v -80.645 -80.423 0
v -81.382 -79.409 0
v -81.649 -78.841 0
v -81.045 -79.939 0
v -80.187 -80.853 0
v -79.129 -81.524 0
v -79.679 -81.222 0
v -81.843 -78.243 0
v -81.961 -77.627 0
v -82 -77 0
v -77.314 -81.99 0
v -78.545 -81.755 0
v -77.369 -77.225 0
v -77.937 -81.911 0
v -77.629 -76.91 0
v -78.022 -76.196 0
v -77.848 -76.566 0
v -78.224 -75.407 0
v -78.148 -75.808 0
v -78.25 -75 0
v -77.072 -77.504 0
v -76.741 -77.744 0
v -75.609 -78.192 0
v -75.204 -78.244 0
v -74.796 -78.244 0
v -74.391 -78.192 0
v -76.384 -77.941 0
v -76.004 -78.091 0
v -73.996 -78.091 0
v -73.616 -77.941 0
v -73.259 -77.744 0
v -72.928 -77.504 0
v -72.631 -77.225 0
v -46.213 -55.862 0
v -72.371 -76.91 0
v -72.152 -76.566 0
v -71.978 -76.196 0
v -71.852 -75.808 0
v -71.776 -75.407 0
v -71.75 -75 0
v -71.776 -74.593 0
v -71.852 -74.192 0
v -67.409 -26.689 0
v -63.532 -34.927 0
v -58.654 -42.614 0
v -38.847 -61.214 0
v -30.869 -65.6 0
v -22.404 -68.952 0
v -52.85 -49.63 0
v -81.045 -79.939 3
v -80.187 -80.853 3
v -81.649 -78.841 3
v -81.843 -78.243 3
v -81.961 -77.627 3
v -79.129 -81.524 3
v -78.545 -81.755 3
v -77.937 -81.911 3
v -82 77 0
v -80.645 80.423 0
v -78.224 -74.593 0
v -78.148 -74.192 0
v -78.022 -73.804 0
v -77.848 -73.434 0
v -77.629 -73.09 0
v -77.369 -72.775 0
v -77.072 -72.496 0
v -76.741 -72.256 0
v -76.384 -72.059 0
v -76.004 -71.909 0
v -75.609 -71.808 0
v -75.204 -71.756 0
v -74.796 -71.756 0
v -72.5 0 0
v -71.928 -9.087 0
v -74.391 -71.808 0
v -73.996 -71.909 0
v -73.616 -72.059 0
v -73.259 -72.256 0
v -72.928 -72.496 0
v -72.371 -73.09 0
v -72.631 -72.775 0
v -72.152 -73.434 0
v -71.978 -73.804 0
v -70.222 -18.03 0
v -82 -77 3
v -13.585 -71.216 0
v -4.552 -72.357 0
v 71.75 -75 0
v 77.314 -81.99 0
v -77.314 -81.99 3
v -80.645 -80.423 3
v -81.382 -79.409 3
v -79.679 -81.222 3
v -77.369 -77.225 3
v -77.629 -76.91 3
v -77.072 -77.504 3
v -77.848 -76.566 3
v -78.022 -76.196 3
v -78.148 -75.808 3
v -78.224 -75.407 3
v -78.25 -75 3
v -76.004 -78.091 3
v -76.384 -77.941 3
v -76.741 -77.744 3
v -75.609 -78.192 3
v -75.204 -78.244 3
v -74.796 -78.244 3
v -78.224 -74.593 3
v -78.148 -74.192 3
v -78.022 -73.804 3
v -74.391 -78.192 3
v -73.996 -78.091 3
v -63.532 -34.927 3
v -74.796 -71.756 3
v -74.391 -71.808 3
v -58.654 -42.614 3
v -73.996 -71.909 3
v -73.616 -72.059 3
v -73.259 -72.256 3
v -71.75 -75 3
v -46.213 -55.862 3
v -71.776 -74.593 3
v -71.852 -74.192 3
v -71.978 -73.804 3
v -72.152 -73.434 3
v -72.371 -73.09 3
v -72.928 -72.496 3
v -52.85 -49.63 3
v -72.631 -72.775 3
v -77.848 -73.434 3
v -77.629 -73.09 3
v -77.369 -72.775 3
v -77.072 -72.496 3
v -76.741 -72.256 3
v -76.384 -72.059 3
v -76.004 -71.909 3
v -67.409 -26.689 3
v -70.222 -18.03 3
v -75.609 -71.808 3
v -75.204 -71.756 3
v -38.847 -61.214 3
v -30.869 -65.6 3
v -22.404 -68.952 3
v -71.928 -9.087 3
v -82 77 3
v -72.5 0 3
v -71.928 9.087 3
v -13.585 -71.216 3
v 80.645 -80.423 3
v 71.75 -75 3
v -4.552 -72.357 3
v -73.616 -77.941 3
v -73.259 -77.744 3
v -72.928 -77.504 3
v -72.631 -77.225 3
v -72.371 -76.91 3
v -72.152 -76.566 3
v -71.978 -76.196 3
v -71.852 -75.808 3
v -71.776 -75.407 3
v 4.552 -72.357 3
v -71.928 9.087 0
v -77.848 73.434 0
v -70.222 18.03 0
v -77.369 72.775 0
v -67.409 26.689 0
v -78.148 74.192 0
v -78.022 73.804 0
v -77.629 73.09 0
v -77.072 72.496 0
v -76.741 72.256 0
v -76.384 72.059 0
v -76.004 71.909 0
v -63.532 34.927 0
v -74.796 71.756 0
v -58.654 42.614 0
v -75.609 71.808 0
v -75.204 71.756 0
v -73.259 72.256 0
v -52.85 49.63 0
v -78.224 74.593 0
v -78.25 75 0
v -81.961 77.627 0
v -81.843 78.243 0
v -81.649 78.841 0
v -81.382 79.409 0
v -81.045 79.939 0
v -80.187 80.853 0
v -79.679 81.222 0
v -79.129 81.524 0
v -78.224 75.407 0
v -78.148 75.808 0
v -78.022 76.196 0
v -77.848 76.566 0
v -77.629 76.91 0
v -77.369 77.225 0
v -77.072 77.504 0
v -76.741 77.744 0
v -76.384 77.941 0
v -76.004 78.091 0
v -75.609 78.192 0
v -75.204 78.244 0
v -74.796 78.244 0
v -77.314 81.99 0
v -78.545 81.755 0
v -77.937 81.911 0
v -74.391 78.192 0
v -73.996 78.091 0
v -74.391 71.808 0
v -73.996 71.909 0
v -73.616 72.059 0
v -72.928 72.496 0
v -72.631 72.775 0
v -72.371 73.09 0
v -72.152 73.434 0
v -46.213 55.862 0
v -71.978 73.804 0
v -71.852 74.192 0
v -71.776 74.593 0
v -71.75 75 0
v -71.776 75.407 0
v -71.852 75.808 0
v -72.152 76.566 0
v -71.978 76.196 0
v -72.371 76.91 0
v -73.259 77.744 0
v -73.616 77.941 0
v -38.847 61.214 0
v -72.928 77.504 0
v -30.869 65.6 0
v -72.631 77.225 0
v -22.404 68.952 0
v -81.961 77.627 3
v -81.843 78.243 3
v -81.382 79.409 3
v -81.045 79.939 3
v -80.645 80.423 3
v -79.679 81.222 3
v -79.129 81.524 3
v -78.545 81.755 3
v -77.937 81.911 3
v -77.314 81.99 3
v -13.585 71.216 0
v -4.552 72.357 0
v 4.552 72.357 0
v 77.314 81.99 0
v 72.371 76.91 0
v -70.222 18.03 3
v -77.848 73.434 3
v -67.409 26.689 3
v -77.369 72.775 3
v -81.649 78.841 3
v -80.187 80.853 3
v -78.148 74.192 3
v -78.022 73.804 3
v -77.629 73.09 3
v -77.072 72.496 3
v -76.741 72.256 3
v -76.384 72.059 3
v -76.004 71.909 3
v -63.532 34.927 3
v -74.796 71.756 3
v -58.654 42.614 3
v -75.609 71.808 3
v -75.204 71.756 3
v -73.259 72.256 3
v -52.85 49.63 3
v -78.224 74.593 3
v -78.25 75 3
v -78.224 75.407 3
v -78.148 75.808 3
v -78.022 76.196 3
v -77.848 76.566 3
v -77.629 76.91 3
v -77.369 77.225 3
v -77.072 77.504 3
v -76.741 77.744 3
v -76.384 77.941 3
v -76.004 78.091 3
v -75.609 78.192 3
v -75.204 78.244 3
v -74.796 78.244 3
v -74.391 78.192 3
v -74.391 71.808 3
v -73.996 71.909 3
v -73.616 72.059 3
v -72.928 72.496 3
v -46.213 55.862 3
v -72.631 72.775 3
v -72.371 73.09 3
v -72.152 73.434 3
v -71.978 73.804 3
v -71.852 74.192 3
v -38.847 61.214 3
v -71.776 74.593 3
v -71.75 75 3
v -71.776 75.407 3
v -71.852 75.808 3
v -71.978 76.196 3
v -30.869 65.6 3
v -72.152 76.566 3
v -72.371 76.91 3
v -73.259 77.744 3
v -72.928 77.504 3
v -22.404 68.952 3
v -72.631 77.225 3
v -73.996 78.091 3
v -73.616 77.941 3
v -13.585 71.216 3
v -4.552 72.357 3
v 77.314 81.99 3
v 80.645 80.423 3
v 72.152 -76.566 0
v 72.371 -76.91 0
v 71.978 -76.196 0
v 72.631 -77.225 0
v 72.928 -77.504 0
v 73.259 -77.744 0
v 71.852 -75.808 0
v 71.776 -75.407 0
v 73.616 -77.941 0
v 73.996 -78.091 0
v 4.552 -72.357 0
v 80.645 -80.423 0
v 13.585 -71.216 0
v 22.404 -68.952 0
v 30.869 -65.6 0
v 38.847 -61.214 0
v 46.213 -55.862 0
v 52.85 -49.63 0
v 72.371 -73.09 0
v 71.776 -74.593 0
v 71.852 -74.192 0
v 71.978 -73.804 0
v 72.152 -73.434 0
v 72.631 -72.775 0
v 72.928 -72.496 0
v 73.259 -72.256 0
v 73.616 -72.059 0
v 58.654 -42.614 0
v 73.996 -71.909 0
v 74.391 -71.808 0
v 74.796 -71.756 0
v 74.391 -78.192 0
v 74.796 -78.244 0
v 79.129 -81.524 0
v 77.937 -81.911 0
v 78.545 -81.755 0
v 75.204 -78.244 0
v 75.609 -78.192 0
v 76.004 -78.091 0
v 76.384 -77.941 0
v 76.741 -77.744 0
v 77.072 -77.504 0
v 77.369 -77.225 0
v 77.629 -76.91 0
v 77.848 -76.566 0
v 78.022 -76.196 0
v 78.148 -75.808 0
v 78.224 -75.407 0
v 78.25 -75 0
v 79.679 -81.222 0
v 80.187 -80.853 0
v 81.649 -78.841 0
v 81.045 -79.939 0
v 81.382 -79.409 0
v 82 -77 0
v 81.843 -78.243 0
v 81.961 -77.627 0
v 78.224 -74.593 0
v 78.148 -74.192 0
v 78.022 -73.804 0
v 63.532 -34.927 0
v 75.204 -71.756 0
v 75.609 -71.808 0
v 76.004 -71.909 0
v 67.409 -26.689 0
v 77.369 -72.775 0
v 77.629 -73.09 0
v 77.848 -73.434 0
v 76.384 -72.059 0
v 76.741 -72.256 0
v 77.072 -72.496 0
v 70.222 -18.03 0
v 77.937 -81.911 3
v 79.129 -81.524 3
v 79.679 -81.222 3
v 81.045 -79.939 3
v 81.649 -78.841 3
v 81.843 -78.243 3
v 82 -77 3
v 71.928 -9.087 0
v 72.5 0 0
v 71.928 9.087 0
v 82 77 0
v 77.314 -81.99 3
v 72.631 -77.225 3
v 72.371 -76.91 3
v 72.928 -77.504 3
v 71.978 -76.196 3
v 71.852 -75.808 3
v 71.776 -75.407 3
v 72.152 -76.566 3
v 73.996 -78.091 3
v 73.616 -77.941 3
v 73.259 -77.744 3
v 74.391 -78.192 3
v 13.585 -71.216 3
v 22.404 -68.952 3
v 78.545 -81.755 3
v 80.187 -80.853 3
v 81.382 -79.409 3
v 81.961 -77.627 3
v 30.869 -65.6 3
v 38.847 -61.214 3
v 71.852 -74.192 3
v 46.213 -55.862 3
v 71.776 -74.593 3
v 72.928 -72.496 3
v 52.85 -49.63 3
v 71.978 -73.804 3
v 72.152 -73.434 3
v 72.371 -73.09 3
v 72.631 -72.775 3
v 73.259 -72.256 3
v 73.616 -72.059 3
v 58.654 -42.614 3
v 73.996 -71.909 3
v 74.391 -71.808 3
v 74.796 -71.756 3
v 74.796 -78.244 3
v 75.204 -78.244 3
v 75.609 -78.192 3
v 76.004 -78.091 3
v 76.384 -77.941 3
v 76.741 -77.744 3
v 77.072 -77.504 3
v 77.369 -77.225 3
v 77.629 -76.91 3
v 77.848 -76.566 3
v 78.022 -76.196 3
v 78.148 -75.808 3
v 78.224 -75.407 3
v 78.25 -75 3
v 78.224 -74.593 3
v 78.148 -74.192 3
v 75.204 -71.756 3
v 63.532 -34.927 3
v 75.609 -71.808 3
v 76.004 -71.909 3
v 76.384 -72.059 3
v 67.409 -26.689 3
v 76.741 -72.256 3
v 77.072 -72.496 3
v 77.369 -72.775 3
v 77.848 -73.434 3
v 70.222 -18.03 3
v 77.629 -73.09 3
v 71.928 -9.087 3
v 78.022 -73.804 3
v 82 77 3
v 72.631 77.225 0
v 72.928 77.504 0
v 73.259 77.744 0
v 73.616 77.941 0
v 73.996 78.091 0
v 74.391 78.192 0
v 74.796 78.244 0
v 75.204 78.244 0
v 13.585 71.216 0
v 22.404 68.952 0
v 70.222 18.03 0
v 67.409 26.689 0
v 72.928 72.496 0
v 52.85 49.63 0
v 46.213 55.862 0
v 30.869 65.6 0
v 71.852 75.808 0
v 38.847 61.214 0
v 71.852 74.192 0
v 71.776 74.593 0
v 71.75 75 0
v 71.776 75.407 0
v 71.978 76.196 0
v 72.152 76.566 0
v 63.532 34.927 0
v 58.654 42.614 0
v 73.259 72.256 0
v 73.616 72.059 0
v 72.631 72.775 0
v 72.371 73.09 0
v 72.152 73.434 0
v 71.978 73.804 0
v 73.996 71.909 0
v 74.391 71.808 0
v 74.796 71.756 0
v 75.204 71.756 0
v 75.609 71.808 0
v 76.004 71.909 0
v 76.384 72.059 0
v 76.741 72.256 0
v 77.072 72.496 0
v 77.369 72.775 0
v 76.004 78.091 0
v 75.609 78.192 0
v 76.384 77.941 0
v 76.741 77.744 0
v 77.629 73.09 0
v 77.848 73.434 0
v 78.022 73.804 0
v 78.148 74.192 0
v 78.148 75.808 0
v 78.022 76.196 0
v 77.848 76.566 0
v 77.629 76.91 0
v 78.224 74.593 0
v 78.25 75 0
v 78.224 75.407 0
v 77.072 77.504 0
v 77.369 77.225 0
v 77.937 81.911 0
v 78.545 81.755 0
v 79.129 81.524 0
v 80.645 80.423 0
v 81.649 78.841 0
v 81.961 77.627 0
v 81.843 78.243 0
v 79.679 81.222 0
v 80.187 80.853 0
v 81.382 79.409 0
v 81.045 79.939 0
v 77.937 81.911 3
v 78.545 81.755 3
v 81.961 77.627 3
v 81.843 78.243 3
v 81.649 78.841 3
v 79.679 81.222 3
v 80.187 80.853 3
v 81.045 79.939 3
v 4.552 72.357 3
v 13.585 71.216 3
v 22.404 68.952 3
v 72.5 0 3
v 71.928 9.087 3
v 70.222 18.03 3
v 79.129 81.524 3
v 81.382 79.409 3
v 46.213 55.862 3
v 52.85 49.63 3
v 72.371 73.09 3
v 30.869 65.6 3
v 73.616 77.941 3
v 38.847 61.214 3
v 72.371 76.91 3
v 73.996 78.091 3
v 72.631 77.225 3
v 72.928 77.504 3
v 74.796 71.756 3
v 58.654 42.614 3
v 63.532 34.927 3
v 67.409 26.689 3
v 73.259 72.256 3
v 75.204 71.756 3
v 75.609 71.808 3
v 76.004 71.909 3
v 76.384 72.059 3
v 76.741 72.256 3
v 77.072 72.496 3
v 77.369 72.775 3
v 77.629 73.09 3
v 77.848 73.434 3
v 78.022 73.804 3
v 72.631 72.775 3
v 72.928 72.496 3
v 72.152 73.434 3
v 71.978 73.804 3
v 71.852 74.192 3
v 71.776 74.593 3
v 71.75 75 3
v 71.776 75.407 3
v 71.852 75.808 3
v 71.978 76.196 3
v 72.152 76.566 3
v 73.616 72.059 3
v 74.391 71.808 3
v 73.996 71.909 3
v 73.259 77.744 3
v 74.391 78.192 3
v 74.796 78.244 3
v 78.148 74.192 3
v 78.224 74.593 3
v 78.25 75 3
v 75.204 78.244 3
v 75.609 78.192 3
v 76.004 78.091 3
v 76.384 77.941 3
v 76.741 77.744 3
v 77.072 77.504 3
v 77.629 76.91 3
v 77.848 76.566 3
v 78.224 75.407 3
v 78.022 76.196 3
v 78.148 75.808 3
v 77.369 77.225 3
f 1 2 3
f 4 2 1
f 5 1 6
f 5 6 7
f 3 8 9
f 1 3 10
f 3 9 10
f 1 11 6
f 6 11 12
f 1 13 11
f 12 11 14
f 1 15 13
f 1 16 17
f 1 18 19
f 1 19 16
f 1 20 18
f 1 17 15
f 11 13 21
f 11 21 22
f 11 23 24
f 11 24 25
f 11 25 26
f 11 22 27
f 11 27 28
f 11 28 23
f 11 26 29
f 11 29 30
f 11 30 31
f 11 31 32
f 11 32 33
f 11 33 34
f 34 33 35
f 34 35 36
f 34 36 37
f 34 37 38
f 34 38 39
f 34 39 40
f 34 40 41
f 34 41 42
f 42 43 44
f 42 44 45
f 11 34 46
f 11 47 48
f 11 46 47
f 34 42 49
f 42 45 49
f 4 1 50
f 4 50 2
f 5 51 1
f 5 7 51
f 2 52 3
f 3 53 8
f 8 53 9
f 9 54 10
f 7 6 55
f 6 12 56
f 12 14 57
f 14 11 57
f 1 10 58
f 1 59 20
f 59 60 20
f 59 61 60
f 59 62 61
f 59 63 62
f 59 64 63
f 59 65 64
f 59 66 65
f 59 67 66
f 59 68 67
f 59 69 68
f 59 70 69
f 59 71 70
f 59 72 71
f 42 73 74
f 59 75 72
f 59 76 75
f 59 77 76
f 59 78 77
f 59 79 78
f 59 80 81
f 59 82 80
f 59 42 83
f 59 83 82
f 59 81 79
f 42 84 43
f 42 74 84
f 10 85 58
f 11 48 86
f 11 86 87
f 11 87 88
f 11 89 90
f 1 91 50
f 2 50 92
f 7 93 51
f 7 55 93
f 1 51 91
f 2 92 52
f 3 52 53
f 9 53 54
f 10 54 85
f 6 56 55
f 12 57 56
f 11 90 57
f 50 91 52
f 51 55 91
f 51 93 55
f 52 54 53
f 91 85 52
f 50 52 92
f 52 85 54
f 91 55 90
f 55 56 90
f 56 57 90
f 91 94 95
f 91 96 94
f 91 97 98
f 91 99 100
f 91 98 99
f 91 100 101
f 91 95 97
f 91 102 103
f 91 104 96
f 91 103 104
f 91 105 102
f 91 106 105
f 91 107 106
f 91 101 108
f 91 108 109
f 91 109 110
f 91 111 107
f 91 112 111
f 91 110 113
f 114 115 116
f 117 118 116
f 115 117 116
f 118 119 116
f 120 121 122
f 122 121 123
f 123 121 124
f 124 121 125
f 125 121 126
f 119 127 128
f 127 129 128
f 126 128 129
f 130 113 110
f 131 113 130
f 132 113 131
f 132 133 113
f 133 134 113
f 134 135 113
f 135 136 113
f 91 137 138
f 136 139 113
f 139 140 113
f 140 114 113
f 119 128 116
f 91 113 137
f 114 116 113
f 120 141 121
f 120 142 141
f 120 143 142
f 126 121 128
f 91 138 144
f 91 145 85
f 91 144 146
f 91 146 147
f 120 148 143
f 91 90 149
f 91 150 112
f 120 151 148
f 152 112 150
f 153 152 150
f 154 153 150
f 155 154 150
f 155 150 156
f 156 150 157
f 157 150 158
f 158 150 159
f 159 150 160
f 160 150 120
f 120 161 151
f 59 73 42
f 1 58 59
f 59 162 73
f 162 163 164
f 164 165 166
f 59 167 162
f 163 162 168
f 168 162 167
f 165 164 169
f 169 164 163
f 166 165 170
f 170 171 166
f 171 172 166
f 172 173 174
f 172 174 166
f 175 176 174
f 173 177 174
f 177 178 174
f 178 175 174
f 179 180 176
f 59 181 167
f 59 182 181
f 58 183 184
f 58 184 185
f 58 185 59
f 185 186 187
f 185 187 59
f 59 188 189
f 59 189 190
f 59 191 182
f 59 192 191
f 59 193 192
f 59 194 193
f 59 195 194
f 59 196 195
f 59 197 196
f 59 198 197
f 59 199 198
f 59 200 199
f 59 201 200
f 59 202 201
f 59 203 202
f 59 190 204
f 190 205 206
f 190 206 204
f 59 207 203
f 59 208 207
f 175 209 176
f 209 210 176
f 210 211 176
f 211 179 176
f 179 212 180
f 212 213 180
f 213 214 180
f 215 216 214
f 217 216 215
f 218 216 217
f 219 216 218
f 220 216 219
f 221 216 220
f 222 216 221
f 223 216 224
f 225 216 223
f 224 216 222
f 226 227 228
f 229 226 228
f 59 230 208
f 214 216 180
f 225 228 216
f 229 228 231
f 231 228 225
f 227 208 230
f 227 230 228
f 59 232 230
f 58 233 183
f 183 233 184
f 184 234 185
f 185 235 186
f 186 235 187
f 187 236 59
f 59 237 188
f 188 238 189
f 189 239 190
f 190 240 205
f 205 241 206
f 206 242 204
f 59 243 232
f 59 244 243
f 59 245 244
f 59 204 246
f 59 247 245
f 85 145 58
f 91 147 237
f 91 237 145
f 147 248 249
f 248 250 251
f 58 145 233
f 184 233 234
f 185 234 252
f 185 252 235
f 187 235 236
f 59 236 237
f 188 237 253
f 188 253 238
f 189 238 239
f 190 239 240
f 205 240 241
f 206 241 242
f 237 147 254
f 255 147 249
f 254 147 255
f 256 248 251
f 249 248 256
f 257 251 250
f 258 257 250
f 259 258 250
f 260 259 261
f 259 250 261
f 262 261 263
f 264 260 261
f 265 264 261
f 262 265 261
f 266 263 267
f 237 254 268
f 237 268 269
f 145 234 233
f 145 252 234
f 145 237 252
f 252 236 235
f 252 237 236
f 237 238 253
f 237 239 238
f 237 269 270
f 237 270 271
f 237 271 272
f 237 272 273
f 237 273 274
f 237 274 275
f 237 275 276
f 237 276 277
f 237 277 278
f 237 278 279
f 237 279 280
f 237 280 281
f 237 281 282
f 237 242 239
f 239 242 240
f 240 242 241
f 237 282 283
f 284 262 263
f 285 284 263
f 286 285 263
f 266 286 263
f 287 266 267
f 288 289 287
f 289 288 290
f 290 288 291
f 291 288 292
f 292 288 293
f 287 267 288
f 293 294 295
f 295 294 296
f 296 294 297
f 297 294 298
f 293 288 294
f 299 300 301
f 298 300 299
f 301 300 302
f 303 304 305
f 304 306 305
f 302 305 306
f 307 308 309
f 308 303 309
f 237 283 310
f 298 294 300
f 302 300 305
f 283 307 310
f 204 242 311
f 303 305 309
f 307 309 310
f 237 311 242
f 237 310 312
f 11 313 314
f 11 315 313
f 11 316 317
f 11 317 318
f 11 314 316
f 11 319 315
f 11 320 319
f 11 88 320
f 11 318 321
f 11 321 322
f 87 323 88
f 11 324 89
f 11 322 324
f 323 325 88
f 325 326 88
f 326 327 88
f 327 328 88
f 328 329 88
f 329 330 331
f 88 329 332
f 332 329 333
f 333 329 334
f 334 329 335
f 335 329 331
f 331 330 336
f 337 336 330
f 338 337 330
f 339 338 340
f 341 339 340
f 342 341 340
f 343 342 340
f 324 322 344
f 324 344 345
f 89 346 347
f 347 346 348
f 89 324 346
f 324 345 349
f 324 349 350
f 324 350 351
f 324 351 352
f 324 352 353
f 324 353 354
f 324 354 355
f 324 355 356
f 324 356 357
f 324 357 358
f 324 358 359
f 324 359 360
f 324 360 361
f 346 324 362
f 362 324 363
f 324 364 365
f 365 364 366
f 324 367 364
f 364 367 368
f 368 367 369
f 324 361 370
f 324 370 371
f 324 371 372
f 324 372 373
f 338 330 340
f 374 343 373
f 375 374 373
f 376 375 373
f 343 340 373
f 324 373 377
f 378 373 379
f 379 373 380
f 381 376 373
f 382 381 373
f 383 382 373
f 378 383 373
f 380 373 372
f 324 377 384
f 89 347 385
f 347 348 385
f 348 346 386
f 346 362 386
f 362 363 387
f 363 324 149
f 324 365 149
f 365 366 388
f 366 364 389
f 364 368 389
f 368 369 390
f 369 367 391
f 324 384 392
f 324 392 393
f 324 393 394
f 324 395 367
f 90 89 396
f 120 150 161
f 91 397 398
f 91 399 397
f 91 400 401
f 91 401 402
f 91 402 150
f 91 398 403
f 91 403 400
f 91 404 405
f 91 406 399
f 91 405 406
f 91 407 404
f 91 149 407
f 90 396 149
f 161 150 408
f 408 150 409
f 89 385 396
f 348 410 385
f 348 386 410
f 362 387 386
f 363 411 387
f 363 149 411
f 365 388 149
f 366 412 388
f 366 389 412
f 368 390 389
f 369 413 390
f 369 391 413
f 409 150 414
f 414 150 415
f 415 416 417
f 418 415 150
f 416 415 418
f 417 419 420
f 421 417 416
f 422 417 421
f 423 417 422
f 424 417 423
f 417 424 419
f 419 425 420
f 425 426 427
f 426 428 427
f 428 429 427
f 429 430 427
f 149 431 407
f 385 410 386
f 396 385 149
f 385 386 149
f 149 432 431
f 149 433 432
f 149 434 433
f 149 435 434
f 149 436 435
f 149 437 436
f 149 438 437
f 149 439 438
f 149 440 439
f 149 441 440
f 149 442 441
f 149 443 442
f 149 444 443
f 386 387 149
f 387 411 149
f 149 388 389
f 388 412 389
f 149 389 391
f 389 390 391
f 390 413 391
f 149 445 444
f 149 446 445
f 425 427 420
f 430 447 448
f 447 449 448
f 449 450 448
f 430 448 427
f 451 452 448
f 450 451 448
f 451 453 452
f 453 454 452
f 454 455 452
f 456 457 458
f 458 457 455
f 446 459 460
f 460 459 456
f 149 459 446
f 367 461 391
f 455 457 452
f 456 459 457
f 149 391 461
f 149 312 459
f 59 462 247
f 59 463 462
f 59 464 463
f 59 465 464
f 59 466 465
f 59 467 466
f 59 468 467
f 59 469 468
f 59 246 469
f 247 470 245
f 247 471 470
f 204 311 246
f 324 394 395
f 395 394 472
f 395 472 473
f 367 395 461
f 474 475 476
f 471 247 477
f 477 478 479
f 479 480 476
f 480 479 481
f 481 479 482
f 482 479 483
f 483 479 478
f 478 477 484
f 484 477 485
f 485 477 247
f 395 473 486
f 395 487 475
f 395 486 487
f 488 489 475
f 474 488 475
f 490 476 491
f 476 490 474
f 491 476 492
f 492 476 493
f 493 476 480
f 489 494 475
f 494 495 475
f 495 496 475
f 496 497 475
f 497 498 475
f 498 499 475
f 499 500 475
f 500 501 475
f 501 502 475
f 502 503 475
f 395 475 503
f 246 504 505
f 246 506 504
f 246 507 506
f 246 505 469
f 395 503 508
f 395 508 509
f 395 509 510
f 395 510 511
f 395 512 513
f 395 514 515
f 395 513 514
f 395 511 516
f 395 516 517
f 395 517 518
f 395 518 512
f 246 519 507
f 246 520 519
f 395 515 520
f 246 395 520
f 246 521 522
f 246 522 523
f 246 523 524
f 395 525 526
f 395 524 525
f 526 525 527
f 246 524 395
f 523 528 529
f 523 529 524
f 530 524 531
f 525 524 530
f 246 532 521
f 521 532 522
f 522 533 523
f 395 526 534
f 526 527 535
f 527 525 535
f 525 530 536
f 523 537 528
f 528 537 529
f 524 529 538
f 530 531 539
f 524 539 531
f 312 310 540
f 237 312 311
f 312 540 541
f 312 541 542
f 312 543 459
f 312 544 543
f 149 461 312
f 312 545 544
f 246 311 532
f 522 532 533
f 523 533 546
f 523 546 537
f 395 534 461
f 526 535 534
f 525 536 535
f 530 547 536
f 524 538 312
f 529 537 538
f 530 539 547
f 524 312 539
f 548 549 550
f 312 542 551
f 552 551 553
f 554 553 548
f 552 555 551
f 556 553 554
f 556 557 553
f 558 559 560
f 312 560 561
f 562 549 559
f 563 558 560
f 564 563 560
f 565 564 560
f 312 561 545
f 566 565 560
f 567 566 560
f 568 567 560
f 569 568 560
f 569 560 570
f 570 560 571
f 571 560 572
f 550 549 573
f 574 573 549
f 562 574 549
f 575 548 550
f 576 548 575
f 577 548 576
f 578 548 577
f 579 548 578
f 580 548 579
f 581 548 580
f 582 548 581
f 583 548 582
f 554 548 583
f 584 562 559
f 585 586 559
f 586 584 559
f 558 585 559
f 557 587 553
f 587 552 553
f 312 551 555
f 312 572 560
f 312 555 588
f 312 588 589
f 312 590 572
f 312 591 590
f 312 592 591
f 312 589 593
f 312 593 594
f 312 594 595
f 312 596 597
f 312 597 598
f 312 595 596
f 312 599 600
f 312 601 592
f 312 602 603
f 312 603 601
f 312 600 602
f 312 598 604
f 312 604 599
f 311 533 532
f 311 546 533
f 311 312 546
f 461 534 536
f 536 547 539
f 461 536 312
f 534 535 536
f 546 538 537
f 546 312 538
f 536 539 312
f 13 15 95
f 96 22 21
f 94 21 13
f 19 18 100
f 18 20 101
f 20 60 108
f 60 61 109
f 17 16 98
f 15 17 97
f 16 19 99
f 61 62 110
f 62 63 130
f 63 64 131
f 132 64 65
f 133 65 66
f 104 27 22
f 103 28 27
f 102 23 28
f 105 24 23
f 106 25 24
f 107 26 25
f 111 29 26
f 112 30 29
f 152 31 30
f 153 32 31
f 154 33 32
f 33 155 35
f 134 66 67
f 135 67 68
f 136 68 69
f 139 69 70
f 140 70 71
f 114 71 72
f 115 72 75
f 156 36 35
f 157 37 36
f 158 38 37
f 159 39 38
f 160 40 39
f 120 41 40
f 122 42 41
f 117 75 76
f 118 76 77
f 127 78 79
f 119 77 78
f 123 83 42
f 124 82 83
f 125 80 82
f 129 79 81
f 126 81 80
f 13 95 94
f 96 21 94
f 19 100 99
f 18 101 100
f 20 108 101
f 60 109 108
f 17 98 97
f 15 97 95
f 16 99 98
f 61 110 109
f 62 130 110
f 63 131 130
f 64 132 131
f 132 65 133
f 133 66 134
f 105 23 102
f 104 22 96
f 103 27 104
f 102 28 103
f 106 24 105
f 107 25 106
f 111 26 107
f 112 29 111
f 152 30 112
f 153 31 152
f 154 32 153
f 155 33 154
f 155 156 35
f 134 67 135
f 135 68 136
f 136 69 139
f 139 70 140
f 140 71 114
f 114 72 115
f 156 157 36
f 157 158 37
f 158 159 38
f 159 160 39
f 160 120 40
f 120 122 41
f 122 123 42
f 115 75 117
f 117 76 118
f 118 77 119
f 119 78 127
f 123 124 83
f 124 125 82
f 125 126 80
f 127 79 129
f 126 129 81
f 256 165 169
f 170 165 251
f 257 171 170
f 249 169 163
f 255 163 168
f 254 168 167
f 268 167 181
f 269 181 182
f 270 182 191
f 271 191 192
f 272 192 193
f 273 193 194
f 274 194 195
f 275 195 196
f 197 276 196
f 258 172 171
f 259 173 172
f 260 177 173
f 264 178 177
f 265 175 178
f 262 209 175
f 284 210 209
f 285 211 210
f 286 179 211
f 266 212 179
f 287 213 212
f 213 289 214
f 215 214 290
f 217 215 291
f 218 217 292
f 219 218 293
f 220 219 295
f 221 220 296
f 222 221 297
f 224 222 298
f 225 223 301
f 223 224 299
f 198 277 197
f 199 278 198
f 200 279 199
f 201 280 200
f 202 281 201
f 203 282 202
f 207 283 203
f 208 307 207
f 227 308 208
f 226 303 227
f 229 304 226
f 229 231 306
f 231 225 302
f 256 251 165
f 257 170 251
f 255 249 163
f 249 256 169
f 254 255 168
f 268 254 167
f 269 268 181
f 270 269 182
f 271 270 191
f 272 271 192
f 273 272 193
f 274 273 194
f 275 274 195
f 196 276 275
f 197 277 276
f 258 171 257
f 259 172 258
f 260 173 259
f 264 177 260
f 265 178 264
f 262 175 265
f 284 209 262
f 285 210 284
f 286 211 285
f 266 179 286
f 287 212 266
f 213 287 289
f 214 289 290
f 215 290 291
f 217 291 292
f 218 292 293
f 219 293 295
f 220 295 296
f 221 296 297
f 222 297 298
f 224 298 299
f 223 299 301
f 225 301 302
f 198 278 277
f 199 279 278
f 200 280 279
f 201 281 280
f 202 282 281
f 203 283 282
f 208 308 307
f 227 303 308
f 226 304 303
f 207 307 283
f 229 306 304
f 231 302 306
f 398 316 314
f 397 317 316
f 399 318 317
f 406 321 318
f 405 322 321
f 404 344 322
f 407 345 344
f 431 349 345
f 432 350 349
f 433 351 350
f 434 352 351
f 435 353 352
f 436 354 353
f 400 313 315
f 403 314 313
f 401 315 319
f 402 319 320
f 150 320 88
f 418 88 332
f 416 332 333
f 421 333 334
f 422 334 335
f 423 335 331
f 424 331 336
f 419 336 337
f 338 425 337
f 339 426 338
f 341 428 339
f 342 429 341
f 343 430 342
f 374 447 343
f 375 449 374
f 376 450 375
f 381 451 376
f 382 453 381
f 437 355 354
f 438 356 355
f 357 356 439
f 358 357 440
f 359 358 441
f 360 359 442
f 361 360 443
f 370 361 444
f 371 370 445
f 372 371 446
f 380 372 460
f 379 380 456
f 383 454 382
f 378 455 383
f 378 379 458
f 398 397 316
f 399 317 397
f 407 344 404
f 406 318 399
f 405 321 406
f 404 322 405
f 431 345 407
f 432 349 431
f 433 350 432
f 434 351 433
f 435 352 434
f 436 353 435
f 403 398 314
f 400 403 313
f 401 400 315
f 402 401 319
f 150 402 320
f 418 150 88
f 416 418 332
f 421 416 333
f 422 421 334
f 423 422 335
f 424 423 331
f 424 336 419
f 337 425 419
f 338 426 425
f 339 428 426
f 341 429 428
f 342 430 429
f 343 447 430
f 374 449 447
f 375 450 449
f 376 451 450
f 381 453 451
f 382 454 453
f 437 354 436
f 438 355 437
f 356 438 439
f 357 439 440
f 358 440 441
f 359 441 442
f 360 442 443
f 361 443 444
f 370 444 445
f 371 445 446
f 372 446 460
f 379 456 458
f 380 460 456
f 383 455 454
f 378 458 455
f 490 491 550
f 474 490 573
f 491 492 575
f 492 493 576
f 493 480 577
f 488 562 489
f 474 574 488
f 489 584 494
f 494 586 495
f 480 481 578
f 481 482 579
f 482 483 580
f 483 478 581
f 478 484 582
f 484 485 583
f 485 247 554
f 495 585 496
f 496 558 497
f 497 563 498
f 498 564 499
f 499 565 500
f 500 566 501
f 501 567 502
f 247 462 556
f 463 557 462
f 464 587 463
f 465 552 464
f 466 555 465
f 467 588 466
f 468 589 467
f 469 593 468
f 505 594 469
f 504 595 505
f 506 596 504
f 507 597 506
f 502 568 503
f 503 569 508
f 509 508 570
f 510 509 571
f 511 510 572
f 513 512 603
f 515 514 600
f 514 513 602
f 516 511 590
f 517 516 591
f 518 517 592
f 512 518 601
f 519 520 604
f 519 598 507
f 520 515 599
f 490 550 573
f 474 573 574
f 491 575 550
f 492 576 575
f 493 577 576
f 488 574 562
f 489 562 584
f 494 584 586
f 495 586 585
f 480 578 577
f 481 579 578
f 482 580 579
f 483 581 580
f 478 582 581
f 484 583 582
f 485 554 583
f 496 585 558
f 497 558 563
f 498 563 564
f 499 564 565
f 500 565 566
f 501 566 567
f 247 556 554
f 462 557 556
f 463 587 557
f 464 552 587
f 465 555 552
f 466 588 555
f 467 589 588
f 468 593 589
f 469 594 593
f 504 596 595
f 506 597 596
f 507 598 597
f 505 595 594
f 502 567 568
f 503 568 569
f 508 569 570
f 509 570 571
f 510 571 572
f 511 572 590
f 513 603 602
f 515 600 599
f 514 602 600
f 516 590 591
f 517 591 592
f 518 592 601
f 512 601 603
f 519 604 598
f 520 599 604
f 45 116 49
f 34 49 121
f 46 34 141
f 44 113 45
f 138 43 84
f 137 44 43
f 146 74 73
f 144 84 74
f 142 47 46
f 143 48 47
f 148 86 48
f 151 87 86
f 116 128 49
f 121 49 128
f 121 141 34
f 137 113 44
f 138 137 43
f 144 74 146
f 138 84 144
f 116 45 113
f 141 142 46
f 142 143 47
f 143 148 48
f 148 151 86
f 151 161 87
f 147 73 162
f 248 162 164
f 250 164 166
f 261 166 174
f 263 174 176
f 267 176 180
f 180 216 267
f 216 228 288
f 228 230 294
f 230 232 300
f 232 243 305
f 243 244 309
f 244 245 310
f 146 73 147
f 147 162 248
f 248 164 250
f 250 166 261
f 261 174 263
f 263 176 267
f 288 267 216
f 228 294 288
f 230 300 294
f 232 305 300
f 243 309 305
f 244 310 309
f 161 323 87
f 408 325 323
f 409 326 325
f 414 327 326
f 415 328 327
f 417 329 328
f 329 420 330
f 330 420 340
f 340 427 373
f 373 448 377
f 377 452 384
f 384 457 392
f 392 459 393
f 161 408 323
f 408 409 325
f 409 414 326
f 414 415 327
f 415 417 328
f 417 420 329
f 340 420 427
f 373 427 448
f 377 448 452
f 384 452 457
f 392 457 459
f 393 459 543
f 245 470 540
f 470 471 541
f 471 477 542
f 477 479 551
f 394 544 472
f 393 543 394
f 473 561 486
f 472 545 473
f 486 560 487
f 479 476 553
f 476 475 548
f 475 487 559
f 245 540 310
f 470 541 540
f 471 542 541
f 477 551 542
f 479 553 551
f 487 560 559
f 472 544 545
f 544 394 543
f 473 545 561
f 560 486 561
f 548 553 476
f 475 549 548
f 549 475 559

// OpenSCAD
$fn = 50;

difference() {
	union() {
		hull() {
			translate(v = [-77.0, 77.0, 0]) {
				cylinder(h = 3, r = 5);
			}
			translate(v = [77.0, 77.0, 0]) {
				cylinder(h = 3, r = 5);
			}
			translate(v = [-77.0, -77.0, 0]) {
				cylinder(h = 3, r = 5);
			}
			translate(v = [77.0, -77.0, 0]) {
				cylinder(h = 3, r = 5);
			}
		}
	}
	union() {
		translate(v = [-75.0, -75.0, -100.0]) {
			cylinder(h = 200, r = 3.25);
		}
		translate(v = [-75.0, 75.0, -100.0]) {
			cylinder(h = 200, r = 3.25);
		}
		translate(v = [75.0, -75.0, -100.0]) {
			cylinder(h = 200, r = 3.25);
		}
		translate(v = [75.0, 75.0, -100.0]) {
			cylinder(h = 200, r = 3.25);
		}
		translate(v = [-75.0, -75.0, -100.0]) {
			cylinder(h = 200, r = 1.8);
		}
		translate(v = [-75.0, 75.0, -100.0]) {
			cylinder(h = 200, r = 1.8);
		}
		translate(v = [75.0, -75.0, -100.0]) {
			cylinder(h = 200, r = 1.8);
		}
		translate(v = [75.0, 75.0, -100.0]) {
			cylinder(h = 200, r = 1.8);
		}
		cylinder(h = 3, r = 72.5);
	}
}
